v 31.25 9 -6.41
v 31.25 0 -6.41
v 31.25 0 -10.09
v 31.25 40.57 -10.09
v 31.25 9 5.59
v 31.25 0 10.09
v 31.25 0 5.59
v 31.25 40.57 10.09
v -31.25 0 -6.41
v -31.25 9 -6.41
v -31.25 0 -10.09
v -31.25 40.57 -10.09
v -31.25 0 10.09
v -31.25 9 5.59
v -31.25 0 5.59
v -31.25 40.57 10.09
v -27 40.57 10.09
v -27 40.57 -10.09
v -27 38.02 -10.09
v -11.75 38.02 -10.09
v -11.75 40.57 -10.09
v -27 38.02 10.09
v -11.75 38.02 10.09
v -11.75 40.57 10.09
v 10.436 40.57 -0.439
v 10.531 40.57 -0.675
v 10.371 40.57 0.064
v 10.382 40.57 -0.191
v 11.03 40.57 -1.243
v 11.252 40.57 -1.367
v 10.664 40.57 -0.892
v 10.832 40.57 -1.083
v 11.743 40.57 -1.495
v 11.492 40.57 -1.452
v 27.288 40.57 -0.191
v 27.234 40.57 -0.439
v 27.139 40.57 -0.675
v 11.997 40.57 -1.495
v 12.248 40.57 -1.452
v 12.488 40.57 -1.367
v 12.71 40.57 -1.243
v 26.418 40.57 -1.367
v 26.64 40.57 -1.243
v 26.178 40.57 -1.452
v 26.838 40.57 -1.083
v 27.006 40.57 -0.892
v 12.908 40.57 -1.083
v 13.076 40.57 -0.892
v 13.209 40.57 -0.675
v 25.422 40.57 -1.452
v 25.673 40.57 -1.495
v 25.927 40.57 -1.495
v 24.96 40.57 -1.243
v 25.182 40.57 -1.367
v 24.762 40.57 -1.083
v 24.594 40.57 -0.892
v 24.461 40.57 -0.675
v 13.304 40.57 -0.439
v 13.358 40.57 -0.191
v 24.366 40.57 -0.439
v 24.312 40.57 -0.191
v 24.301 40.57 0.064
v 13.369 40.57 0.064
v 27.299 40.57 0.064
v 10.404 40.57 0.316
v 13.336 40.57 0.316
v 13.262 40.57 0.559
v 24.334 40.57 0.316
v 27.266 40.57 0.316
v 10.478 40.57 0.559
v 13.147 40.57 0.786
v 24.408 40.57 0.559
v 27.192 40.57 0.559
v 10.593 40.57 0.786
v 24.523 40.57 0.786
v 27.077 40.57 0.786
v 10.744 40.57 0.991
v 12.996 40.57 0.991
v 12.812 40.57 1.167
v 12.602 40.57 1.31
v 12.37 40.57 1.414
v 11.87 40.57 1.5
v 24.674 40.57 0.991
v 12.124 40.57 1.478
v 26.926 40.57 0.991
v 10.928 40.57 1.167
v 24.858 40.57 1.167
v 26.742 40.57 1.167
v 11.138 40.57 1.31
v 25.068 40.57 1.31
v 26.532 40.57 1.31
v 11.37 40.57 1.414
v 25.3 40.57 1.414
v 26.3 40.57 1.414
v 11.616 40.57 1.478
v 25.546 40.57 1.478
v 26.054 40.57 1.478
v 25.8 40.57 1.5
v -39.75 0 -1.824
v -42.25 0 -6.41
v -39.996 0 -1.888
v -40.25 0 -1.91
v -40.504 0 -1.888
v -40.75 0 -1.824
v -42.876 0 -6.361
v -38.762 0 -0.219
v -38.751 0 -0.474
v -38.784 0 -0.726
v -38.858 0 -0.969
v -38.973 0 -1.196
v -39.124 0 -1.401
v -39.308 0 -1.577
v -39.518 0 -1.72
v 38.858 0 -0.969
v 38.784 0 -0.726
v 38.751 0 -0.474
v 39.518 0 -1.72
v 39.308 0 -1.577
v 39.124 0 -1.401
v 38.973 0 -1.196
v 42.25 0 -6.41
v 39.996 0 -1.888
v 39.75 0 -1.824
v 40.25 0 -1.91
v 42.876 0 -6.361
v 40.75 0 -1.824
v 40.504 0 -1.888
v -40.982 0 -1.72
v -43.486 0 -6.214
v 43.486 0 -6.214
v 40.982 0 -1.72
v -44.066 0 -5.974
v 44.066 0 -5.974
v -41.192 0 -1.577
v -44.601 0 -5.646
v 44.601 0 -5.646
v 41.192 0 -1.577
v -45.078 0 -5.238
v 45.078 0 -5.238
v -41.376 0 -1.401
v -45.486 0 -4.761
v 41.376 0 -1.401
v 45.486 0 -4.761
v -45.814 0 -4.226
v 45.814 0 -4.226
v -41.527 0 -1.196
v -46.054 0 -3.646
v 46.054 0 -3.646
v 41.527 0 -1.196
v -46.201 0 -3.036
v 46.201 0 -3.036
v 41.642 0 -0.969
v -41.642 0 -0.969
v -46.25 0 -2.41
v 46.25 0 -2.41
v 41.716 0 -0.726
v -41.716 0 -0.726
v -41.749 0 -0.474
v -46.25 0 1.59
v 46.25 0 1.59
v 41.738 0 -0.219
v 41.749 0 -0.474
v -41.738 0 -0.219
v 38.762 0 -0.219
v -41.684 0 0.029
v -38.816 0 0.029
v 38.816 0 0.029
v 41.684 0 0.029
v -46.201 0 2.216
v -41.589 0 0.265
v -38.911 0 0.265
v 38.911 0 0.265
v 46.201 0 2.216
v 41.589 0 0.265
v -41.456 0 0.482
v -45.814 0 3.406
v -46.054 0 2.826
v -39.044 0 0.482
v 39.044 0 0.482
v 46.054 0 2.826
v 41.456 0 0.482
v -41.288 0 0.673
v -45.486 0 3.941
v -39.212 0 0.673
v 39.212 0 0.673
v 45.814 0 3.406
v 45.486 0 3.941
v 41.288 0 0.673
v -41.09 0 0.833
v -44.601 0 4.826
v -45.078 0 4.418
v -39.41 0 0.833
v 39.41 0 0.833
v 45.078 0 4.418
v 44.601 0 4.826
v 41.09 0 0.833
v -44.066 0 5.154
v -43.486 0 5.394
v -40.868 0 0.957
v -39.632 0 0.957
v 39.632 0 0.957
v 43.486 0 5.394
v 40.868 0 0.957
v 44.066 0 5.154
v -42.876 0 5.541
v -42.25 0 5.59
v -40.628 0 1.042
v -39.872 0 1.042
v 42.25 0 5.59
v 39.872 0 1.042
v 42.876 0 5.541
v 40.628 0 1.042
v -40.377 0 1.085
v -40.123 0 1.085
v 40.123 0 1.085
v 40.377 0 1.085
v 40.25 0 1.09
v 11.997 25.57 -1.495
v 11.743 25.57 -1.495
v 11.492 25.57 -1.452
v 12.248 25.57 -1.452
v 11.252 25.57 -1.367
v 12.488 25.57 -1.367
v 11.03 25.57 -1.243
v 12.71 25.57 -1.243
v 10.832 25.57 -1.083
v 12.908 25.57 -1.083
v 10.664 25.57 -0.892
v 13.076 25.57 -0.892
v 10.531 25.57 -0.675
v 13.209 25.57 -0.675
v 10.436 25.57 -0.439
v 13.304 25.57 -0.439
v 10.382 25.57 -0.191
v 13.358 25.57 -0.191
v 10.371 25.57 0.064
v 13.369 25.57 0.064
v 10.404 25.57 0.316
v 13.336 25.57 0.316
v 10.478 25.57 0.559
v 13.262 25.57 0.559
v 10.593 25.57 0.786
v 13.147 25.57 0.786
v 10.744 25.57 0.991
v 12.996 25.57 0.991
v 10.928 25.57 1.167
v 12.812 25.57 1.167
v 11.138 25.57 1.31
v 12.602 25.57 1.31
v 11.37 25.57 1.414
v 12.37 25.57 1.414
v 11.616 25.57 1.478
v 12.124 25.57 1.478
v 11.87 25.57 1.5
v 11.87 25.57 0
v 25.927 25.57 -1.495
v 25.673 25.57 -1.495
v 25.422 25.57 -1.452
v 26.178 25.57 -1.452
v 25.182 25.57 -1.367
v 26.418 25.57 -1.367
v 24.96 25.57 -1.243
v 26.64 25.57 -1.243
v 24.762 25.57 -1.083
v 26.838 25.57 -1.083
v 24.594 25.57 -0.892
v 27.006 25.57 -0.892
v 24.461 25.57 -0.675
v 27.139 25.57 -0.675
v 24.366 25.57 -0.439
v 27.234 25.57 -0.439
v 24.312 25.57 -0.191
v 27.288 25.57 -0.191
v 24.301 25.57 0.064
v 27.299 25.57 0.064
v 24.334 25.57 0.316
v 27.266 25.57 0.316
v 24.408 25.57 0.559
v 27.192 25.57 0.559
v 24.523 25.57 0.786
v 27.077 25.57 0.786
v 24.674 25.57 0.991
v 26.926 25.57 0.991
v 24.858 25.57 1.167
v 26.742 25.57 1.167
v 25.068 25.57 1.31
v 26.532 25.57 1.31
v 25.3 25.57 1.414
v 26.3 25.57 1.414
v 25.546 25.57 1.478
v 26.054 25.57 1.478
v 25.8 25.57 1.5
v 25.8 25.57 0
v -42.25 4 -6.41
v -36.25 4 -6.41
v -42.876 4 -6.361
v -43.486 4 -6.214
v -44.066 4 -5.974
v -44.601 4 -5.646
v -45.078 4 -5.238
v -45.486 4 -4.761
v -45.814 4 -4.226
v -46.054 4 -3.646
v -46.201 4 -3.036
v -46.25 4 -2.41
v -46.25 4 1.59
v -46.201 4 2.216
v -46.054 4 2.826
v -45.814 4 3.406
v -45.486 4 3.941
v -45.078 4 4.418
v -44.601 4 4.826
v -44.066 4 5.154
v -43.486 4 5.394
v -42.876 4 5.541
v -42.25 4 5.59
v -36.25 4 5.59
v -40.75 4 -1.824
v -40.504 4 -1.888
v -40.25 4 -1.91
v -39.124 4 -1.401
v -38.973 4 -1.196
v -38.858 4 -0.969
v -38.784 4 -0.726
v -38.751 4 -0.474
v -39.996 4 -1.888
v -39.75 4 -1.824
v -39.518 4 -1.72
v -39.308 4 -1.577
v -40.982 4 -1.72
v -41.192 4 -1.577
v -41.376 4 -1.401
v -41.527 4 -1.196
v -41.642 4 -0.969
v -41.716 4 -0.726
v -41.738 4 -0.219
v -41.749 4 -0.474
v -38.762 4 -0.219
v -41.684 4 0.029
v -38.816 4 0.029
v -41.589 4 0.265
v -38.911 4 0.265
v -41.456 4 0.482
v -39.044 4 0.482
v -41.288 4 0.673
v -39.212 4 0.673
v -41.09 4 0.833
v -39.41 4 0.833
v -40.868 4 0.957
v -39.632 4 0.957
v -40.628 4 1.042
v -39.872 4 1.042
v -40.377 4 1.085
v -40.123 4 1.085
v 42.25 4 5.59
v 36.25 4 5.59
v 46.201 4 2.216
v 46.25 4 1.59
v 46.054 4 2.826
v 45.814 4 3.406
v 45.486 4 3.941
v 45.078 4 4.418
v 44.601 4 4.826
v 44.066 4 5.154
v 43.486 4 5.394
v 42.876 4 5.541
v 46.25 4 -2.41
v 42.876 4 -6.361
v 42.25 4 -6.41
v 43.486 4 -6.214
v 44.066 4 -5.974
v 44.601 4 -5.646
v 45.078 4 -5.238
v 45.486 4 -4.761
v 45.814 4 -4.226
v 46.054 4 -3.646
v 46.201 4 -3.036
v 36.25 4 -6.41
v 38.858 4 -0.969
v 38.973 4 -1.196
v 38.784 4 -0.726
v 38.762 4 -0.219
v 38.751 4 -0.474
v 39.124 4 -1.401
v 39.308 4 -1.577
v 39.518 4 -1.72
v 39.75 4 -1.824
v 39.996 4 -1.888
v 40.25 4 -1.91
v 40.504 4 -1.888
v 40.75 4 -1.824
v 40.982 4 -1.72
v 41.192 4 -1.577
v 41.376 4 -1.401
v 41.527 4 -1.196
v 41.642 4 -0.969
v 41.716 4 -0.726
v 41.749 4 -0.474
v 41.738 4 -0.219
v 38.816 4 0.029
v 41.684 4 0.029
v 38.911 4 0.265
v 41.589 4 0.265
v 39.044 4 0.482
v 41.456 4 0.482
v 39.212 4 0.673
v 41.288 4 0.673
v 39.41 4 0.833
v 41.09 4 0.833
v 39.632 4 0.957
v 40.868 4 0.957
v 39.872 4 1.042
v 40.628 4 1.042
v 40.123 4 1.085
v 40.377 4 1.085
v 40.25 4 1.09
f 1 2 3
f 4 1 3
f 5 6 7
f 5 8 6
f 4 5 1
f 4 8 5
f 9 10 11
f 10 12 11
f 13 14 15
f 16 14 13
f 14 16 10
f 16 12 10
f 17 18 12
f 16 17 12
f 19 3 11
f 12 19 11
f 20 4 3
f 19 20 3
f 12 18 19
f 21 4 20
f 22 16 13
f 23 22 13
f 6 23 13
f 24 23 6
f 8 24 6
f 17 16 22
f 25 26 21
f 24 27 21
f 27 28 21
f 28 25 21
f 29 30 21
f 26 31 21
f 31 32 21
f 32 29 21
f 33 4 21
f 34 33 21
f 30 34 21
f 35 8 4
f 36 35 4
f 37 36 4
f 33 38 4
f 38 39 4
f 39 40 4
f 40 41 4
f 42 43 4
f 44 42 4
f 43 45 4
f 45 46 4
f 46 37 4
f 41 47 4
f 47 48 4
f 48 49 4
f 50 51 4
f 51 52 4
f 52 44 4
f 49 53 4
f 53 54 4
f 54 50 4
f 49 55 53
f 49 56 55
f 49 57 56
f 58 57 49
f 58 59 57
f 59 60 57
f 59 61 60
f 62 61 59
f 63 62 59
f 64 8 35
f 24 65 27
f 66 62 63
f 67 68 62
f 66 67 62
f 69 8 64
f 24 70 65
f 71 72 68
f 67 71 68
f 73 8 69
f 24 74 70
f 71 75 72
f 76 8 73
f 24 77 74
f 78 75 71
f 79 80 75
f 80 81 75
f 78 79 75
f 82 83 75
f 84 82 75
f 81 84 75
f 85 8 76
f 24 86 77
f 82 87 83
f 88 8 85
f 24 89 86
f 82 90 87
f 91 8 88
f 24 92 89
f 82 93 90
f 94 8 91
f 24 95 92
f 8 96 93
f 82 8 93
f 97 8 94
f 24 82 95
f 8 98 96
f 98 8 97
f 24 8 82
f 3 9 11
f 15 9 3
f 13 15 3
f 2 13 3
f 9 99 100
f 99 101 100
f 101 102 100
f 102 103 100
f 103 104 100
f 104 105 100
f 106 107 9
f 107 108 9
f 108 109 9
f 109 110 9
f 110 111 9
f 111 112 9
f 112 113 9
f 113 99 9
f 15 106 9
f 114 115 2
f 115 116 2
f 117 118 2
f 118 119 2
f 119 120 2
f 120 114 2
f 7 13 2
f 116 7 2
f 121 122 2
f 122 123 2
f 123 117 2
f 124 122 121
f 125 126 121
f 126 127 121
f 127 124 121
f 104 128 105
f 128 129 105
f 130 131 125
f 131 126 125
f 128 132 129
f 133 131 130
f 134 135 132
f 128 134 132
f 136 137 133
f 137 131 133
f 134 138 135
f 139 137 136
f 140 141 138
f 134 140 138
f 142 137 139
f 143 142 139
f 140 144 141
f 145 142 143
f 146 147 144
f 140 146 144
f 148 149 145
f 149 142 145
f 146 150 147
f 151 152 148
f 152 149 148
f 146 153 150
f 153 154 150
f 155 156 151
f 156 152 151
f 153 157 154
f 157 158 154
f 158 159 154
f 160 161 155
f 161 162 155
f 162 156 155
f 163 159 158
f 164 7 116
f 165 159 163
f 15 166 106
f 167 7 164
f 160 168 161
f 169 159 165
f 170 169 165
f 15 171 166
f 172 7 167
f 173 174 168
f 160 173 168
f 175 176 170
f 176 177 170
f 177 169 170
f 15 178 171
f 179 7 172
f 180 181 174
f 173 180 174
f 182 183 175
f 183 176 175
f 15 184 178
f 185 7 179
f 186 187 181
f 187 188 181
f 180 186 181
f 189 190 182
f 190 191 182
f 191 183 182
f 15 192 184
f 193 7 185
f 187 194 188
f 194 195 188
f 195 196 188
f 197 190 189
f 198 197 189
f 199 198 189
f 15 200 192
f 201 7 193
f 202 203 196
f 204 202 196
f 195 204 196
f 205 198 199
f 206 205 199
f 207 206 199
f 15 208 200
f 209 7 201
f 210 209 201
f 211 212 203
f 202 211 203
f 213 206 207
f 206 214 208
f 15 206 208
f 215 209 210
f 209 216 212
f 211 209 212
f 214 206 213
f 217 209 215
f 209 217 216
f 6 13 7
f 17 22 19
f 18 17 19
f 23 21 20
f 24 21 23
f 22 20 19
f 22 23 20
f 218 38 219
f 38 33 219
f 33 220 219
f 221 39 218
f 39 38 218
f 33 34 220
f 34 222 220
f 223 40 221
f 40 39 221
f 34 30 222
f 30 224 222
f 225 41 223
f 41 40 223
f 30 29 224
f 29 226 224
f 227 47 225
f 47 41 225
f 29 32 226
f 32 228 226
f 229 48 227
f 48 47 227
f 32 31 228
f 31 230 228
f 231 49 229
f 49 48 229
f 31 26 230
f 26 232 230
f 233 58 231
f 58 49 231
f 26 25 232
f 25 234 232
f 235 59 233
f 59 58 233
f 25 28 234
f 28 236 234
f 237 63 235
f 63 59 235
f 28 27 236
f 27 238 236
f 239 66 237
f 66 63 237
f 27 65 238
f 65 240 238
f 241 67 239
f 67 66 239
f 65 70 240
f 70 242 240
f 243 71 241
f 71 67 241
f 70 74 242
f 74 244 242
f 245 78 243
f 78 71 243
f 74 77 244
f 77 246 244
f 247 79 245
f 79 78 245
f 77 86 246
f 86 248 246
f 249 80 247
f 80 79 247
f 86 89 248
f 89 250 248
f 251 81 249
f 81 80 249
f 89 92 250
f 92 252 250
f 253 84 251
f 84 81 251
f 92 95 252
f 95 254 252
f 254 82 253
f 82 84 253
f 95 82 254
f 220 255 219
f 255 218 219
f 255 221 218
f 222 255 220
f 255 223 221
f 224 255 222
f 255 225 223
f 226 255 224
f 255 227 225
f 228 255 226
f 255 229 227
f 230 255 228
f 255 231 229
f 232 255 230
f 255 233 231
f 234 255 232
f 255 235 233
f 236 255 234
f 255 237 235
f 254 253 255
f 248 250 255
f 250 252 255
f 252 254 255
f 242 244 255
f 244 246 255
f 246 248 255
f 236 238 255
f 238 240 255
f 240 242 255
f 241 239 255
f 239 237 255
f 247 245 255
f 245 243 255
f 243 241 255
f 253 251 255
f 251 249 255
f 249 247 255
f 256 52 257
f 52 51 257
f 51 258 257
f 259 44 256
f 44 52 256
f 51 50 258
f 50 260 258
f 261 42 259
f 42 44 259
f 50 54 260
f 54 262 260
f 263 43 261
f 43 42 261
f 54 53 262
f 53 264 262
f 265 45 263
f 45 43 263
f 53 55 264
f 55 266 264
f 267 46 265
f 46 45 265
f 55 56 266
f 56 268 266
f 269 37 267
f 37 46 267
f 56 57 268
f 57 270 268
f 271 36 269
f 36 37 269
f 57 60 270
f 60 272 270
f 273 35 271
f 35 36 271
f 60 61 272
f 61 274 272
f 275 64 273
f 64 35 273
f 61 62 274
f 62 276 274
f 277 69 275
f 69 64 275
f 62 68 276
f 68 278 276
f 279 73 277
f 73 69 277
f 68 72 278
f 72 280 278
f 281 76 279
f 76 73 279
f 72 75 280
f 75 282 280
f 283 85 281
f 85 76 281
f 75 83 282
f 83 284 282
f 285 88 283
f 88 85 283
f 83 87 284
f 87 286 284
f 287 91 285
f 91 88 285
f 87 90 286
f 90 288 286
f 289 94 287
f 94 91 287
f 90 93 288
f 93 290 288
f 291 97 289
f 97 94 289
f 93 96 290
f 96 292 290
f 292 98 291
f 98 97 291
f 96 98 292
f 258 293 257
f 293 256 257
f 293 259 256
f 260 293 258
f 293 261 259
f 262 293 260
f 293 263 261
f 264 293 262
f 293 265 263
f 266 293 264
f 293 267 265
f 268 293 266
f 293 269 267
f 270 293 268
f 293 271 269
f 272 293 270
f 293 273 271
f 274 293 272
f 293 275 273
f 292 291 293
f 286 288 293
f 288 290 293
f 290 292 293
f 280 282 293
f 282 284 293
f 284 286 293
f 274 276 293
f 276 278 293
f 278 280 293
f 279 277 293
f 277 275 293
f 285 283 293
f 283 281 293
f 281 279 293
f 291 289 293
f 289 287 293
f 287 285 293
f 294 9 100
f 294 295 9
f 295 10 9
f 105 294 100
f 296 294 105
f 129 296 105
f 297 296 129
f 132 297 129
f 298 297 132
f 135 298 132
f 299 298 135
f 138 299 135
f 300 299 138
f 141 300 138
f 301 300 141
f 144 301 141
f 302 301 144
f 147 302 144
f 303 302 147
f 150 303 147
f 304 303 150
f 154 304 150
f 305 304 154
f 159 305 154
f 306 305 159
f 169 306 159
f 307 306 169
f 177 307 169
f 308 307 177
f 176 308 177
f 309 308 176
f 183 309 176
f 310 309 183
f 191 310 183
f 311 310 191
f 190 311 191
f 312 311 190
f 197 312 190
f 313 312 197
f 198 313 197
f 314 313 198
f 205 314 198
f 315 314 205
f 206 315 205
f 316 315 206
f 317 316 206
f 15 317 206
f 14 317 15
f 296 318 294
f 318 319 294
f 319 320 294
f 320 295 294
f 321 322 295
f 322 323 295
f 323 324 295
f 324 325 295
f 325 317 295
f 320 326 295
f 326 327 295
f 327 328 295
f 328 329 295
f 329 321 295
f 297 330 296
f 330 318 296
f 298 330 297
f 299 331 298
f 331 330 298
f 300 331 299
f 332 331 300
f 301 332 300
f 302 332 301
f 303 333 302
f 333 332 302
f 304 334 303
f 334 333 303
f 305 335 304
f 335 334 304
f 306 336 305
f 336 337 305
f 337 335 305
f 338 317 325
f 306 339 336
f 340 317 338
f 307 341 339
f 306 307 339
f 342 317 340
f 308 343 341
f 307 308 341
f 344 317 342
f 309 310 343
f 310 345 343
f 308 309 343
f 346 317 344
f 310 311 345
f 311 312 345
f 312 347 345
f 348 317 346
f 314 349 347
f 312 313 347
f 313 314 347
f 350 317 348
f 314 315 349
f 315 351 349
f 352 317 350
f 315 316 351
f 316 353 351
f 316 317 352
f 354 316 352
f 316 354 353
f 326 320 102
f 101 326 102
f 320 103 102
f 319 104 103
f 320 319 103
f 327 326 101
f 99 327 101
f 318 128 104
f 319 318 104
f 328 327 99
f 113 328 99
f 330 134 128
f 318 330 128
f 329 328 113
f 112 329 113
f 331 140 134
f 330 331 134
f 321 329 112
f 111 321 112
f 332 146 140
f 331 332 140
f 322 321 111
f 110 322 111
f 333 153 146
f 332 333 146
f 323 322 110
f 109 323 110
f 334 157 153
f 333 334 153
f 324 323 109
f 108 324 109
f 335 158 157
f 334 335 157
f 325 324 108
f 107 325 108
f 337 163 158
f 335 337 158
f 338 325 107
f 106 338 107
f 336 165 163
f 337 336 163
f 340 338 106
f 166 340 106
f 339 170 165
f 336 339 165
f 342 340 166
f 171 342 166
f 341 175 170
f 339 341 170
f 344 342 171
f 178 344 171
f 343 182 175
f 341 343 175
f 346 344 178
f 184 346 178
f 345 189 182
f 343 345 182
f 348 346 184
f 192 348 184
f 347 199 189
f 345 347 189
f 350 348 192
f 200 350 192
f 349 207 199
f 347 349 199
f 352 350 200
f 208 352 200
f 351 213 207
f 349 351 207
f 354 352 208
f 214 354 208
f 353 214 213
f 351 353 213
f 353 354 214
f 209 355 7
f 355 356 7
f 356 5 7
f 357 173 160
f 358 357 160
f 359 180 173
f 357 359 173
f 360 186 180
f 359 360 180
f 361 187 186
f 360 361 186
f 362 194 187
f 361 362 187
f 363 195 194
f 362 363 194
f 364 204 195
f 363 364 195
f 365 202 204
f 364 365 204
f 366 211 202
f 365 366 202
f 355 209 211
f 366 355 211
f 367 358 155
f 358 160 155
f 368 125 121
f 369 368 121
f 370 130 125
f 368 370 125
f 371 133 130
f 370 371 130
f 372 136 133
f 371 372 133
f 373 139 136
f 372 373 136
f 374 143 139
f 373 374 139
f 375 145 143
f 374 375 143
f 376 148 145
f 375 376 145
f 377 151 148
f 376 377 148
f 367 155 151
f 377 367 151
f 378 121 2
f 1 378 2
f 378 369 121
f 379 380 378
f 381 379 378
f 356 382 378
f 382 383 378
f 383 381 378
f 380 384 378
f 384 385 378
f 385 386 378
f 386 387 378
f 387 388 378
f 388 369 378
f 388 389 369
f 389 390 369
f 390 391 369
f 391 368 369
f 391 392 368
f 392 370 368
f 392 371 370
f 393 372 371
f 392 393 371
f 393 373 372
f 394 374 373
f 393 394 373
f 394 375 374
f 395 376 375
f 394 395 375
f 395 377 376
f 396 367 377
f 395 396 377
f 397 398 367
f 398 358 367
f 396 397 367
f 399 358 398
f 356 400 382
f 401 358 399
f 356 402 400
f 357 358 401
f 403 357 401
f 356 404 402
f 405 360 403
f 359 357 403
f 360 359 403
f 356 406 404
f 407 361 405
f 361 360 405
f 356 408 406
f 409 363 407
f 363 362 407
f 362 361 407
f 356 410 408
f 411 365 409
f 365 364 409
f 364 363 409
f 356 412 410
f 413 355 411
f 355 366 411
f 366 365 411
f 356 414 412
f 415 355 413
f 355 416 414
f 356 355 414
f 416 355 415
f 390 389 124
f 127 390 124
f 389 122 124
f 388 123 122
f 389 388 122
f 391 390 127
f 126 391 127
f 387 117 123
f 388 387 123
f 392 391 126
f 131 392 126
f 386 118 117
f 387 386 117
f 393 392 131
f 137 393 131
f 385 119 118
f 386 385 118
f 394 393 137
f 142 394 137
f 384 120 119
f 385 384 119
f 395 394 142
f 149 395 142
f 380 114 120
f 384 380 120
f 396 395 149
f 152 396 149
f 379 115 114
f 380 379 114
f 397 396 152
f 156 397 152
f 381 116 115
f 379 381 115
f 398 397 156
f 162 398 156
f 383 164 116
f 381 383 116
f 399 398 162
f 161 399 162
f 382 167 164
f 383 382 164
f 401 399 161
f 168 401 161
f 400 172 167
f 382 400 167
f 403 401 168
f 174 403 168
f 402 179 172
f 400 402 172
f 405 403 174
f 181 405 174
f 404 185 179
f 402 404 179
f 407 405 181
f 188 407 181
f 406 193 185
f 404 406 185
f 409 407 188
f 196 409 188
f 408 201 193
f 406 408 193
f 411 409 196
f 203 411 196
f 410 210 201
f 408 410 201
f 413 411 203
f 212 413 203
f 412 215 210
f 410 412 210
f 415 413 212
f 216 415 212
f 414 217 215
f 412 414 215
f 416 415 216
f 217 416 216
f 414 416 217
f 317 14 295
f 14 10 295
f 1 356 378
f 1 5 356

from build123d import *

# Parameters (mm, degrees)
SKETCH_219_W        = 62.5
SKETCH_219_H        = 20.18
EXTRUDE_1_DEPTH     = 40.57
SKETCH_6_W          = 15.25
SKETCH_6_H          = 20.18
CUT_EXTRUDE_1_DEPTH = 2.55
SKETCH_7_R          = 1.5
CUT_EXTRUDE_2_DEPTH = 15
SKETCH_8_R          = 1.5
EXTRUDE_2_DEPTH     = 4
CHAMFER_1_SIZE      = 5
CHAMFER_2_SIZE      = 5


with BuildPart() as part:
    # Sketch 219 → Бобышка-Вытянуть1 (new body)
    with BuildSketch(Plane(origin=(0, 0, 0), x_dir=(1, 0, 0), z_dir=(0, 1, 0))):
        Rectangle(SKETCH_219_W, SKETCH_219_H)
    extrude(amount=EXTRUDE_1_DEPTH)

    # Эскиз6 → Вырез-Вытянуть1 (cut)
    with BuildSketch(Plane(origin=(0, 40.57, 0), x_dir=(1, 0, 0), z_dir=(0, 1, 0))):
        with Locations((-19.375, 0)):
            Rectangle(SKETCH_6_W, SKETCH_6_H)
    extrude(amount=-CUT_EXTRUDE_1_DEPTH, mode=Mode.SUBTRACT)

    # Эскиз7 → Вырез-Вытянуть2 (cut)
    with BuildSketch(Plane(origin=(0, 40.57, 0), x_dir=(1, 0, 0), z_dir=(0, 1, 0))):
        with BuildLine():
            ThreePointArc((27.3, 0), (25.8, 1.5), (24.3, 0))
            Line((24.3, 0), (27.3, 0))
        make_face()
        with BuildLine():
            Line((27.3, 0), (24.3, 0))
            ThreePointArc((24.3, 0), (25.8, -1.5), (27.3, 0))
        make_face()
        with Locations(Location((11.87, 0, 0), (0, 0, 270))):
            Circle(SKETCH_7_R)
    extrude(amount=-CUT_EXTRUDE_2_DEPTH, mode=Mode.SUBTRACT)

    # Эскиз8 → Бобышка-Вытянуть2 (add)
    # profile 1 of 2: a face of its own
    with BuildSketch(Plane.XZ):
        with BuildLine():
            Line((-31.25, 5.59), (-42.25, 5.59))
            ThreePointArc((-42.25, 5.59), (-45.078427125, 4.418427125), (-46.25, 1.59))
            Line((-46.25, 1.59), (-46.25, -2.41))
            ThreePointArc((-46.25, -2.41), (-45.078427125, -5.238427125), (-42.25, -6.41))
            Line((-42.25, -6.41), (-31.25, -6.41))
            Line((-31.25, -6.41), (-31.25, 5.59))
        make_face()
        with Locations(Location((-40.25, -0.41, 0), (0, 0, 270))):
            Circle(SKETCH_8_R, mode=Mode.SUBTRACT)
    # profile 2 of 2: a face of its own
    with BuildSketch(Plane.XZ):
        with BuildLine():
            Line((31.25, -6.41), (42.25, -6.41))
            ThreePointArc((42.25, -6.41), (45.078427125, -5.238427125), (46.25, -2.41))
            Line((46.25, -2.41), (46.25, 1.59))
            ThreePointArc((46.25, 1.59), (45.078427125, 4.418427125), (42.25, 5.59))
            Line((42.25, 5.59), (31.25, 5.59))
            Line((31.25, 5.59), (31.25, -6.41))
        make_face()
        with Locations(Location((40.25, -0.41, 0), (0, 0, 90))):
            Circle(SKETCH_8_R, mode=Mode.SUBTRACT)
    extrude(amount=-EXTRUDE_2_DEPTH)

    # Фаска1
    chamfer_1_edges = [part.edges().sort_by_distance(p)[0] for p in [
        (-31.25, 4, -0.41),
    ]]
    chamfer(chamfer_1_edges, length=CHAMFER_1_SIZE)

    # Фаска2
    chamfer_2_edges = [part.edges().sort_by_distance(p)[0] for p in [
        (31.25, 4, -0.41),
    ]]
    chamfer(chamfer_2_edges, length=CHAMFER_2_SIZE)


solid = part.part
